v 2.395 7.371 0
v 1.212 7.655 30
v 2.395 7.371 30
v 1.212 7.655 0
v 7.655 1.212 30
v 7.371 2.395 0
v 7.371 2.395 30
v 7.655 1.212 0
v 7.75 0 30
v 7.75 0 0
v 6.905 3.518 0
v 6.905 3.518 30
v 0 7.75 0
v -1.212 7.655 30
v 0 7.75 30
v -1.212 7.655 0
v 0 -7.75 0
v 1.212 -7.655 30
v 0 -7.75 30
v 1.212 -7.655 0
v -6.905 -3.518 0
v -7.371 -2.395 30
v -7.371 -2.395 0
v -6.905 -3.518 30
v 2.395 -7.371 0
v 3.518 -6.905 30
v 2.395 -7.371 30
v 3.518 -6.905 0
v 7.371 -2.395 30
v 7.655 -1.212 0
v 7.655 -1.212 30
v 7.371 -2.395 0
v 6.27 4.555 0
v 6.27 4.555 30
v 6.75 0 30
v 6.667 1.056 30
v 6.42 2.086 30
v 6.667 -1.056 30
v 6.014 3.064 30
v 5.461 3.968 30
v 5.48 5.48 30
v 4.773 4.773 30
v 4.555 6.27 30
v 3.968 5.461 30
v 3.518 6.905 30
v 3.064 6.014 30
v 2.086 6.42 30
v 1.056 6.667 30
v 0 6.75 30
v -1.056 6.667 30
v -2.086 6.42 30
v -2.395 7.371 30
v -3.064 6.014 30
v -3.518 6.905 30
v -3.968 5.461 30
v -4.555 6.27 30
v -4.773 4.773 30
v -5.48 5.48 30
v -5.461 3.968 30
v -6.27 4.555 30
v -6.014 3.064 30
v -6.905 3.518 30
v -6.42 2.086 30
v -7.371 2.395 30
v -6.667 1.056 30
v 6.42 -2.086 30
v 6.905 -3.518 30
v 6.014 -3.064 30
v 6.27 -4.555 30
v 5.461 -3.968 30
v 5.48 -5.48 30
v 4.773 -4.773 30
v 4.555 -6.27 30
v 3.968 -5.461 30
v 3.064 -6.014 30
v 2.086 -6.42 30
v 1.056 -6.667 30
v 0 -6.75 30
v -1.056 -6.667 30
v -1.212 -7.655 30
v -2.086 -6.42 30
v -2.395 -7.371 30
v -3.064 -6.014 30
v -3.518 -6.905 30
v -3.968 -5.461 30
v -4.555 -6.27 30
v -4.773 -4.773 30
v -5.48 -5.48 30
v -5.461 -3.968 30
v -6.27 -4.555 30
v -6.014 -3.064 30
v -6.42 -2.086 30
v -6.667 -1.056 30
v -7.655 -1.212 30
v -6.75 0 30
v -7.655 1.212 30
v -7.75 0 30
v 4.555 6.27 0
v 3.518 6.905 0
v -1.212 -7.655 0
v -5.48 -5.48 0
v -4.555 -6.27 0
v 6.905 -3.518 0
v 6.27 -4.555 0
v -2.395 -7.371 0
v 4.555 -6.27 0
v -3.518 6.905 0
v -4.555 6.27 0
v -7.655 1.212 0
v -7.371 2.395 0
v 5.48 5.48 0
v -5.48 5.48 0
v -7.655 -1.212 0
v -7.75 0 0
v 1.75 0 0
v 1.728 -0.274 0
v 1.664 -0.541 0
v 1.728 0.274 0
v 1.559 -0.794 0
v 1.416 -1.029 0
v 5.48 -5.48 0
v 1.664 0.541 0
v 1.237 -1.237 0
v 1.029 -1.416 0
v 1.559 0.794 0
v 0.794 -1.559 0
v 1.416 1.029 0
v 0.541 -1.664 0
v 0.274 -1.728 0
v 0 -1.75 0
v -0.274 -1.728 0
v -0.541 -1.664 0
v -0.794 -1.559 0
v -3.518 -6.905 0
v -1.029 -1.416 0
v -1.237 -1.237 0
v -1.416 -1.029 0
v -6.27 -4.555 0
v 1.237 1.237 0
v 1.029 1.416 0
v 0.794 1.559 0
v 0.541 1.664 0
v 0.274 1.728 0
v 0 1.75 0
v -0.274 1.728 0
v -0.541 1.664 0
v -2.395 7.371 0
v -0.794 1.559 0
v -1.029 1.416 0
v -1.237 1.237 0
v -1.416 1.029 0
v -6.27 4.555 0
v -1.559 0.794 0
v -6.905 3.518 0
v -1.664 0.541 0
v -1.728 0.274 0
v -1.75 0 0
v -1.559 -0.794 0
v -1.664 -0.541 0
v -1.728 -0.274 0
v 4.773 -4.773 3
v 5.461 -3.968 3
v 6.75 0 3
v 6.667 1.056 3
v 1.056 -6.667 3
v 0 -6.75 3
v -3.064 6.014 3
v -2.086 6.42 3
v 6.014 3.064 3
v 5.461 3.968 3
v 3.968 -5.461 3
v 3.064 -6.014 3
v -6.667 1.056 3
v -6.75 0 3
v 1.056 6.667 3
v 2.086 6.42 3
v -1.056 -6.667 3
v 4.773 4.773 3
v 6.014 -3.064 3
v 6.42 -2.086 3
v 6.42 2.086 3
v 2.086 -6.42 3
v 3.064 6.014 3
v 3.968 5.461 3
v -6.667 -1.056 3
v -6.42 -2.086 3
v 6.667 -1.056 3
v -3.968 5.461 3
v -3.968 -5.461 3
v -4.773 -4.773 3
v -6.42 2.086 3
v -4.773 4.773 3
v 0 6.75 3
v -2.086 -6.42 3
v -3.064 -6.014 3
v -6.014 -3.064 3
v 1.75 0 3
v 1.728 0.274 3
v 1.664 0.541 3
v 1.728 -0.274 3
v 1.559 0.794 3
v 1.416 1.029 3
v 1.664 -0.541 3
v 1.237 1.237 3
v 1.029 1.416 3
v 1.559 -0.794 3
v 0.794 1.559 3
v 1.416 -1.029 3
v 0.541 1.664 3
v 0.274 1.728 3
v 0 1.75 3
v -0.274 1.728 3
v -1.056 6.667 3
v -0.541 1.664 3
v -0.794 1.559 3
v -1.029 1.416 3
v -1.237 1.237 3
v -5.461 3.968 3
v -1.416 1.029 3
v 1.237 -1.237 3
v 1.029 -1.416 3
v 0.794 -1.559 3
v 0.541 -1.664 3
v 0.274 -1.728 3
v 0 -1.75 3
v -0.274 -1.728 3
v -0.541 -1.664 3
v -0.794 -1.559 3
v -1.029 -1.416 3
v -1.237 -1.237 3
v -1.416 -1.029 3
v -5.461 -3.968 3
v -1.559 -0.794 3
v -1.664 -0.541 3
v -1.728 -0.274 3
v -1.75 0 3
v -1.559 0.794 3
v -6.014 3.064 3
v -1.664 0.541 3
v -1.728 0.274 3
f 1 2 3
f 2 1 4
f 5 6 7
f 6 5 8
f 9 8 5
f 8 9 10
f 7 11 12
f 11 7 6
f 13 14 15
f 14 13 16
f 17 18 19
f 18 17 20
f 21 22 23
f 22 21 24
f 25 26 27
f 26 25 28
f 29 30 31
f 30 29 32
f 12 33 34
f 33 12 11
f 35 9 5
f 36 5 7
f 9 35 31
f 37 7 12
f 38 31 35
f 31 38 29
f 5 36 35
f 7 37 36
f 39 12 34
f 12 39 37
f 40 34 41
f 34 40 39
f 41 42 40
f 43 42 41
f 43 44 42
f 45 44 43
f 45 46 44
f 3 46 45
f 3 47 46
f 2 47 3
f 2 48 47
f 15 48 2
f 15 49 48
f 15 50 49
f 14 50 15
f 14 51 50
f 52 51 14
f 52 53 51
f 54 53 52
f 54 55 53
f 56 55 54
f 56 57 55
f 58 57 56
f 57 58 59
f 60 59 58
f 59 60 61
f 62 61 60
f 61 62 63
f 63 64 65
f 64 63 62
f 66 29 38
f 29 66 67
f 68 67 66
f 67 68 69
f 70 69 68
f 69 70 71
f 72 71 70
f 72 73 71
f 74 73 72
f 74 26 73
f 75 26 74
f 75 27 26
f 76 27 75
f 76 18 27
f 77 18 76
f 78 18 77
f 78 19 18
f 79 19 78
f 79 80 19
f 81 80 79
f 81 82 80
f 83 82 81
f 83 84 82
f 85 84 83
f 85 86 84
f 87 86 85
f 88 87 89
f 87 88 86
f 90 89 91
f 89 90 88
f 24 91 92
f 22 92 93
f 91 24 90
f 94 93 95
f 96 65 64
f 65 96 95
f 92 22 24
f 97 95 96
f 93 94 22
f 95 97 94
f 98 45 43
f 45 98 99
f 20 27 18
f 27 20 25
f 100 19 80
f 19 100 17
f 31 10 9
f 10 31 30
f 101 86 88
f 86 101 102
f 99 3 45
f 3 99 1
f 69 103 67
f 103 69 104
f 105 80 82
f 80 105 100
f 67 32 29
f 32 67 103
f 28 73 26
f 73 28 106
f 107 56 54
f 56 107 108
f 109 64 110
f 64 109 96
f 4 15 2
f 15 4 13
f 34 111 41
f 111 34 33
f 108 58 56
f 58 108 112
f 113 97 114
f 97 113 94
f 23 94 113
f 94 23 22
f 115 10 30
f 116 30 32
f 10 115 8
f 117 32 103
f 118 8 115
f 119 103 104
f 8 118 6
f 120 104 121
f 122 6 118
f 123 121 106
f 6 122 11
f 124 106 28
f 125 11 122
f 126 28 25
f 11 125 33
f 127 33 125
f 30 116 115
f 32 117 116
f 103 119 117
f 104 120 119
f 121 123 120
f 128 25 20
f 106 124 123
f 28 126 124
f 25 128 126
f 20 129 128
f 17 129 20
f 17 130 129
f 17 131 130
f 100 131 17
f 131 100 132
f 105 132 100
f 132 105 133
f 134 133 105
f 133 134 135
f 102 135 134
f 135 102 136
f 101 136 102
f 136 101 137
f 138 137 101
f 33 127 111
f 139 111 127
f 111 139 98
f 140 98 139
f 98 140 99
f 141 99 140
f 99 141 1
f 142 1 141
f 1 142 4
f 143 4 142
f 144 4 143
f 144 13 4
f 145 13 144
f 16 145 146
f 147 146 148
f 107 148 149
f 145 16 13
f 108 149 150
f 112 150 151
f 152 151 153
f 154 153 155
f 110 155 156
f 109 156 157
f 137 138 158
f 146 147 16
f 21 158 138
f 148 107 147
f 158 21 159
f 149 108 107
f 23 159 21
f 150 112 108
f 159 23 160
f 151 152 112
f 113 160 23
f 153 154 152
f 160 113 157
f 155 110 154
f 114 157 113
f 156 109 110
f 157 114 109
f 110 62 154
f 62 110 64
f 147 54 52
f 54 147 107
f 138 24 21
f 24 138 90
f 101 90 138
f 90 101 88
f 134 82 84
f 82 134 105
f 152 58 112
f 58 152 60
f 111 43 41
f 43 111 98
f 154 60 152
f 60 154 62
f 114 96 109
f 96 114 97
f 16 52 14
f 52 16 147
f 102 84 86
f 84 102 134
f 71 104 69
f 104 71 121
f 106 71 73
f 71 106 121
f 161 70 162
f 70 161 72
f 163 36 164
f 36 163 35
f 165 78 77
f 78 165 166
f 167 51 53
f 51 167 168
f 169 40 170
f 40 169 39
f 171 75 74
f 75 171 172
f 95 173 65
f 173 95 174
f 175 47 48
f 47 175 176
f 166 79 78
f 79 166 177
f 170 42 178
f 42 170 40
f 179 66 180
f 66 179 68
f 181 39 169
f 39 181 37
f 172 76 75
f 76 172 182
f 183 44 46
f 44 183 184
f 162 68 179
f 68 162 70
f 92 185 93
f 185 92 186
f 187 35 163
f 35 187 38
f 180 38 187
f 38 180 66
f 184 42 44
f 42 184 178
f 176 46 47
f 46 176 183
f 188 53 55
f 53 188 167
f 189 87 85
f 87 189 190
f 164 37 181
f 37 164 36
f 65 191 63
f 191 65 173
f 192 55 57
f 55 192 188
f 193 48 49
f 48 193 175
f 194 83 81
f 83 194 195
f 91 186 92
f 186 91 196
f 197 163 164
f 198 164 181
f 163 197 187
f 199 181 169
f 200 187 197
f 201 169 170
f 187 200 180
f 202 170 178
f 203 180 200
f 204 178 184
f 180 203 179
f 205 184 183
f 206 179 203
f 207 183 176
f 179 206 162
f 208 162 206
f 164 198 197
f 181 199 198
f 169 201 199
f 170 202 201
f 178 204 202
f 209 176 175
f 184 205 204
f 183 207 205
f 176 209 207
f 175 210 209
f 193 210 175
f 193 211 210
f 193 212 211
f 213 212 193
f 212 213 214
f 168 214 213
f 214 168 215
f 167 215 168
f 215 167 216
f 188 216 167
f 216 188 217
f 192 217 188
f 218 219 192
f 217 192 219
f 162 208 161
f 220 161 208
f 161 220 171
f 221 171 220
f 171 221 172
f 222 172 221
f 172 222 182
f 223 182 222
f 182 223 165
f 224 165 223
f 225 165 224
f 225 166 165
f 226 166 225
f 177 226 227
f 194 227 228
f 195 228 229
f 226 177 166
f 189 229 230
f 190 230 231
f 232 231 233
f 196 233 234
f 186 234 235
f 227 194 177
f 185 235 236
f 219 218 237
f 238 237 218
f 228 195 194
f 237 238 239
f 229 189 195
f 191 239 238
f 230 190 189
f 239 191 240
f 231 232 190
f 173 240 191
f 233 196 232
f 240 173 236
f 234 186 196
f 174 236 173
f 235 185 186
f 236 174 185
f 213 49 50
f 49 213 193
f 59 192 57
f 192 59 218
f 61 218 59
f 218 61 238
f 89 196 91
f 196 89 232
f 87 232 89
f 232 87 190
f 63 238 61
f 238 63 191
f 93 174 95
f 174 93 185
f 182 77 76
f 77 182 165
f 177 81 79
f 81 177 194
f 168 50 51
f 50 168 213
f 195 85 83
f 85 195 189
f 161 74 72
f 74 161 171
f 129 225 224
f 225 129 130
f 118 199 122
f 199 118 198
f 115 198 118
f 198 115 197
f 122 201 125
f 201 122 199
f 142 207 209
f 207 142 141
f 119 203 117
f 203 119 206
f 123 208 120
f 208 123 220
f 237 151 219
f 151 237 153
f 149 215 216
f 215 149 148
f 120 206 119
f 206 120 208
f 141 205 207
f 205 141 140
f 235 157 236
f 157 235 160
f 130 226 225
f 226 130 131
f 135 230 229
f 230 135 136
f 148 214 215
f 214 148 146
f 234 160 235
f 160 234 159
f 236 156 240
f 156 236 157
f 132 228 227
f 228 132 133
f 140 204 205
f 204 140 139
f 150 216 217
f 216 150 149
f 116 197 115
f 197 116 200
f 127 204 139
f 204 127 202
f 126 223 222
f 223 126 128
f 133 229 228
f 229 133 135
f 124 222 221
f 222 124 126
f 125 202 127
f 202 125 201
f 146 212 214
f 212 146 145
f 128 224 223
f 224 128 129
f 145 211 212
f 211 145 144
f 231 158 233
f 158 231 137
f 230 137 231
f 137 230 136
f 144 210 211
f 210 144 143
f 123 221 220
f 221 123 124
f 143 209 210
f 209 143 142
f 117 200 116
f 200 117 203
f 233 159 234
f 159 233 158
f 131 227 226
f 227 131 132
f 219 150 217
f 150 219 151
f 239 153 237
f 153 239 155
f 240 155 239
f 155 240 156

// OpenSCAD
$fn=40;

module baseplate() {
    linear_extrude(2) {
        square([40,20]);
    }
    
}


module main() {
    difference() {
        baseplate();
        translate([10,10,0]) holder();
    }
}

module holder() {
    difference() {
        cylinder(30,d=15.5);
        translate([0,0,3]) cylinder(30,d=13.5);
        cylinder(30,d=3.5);
        
    }
}

//main();
holder();
